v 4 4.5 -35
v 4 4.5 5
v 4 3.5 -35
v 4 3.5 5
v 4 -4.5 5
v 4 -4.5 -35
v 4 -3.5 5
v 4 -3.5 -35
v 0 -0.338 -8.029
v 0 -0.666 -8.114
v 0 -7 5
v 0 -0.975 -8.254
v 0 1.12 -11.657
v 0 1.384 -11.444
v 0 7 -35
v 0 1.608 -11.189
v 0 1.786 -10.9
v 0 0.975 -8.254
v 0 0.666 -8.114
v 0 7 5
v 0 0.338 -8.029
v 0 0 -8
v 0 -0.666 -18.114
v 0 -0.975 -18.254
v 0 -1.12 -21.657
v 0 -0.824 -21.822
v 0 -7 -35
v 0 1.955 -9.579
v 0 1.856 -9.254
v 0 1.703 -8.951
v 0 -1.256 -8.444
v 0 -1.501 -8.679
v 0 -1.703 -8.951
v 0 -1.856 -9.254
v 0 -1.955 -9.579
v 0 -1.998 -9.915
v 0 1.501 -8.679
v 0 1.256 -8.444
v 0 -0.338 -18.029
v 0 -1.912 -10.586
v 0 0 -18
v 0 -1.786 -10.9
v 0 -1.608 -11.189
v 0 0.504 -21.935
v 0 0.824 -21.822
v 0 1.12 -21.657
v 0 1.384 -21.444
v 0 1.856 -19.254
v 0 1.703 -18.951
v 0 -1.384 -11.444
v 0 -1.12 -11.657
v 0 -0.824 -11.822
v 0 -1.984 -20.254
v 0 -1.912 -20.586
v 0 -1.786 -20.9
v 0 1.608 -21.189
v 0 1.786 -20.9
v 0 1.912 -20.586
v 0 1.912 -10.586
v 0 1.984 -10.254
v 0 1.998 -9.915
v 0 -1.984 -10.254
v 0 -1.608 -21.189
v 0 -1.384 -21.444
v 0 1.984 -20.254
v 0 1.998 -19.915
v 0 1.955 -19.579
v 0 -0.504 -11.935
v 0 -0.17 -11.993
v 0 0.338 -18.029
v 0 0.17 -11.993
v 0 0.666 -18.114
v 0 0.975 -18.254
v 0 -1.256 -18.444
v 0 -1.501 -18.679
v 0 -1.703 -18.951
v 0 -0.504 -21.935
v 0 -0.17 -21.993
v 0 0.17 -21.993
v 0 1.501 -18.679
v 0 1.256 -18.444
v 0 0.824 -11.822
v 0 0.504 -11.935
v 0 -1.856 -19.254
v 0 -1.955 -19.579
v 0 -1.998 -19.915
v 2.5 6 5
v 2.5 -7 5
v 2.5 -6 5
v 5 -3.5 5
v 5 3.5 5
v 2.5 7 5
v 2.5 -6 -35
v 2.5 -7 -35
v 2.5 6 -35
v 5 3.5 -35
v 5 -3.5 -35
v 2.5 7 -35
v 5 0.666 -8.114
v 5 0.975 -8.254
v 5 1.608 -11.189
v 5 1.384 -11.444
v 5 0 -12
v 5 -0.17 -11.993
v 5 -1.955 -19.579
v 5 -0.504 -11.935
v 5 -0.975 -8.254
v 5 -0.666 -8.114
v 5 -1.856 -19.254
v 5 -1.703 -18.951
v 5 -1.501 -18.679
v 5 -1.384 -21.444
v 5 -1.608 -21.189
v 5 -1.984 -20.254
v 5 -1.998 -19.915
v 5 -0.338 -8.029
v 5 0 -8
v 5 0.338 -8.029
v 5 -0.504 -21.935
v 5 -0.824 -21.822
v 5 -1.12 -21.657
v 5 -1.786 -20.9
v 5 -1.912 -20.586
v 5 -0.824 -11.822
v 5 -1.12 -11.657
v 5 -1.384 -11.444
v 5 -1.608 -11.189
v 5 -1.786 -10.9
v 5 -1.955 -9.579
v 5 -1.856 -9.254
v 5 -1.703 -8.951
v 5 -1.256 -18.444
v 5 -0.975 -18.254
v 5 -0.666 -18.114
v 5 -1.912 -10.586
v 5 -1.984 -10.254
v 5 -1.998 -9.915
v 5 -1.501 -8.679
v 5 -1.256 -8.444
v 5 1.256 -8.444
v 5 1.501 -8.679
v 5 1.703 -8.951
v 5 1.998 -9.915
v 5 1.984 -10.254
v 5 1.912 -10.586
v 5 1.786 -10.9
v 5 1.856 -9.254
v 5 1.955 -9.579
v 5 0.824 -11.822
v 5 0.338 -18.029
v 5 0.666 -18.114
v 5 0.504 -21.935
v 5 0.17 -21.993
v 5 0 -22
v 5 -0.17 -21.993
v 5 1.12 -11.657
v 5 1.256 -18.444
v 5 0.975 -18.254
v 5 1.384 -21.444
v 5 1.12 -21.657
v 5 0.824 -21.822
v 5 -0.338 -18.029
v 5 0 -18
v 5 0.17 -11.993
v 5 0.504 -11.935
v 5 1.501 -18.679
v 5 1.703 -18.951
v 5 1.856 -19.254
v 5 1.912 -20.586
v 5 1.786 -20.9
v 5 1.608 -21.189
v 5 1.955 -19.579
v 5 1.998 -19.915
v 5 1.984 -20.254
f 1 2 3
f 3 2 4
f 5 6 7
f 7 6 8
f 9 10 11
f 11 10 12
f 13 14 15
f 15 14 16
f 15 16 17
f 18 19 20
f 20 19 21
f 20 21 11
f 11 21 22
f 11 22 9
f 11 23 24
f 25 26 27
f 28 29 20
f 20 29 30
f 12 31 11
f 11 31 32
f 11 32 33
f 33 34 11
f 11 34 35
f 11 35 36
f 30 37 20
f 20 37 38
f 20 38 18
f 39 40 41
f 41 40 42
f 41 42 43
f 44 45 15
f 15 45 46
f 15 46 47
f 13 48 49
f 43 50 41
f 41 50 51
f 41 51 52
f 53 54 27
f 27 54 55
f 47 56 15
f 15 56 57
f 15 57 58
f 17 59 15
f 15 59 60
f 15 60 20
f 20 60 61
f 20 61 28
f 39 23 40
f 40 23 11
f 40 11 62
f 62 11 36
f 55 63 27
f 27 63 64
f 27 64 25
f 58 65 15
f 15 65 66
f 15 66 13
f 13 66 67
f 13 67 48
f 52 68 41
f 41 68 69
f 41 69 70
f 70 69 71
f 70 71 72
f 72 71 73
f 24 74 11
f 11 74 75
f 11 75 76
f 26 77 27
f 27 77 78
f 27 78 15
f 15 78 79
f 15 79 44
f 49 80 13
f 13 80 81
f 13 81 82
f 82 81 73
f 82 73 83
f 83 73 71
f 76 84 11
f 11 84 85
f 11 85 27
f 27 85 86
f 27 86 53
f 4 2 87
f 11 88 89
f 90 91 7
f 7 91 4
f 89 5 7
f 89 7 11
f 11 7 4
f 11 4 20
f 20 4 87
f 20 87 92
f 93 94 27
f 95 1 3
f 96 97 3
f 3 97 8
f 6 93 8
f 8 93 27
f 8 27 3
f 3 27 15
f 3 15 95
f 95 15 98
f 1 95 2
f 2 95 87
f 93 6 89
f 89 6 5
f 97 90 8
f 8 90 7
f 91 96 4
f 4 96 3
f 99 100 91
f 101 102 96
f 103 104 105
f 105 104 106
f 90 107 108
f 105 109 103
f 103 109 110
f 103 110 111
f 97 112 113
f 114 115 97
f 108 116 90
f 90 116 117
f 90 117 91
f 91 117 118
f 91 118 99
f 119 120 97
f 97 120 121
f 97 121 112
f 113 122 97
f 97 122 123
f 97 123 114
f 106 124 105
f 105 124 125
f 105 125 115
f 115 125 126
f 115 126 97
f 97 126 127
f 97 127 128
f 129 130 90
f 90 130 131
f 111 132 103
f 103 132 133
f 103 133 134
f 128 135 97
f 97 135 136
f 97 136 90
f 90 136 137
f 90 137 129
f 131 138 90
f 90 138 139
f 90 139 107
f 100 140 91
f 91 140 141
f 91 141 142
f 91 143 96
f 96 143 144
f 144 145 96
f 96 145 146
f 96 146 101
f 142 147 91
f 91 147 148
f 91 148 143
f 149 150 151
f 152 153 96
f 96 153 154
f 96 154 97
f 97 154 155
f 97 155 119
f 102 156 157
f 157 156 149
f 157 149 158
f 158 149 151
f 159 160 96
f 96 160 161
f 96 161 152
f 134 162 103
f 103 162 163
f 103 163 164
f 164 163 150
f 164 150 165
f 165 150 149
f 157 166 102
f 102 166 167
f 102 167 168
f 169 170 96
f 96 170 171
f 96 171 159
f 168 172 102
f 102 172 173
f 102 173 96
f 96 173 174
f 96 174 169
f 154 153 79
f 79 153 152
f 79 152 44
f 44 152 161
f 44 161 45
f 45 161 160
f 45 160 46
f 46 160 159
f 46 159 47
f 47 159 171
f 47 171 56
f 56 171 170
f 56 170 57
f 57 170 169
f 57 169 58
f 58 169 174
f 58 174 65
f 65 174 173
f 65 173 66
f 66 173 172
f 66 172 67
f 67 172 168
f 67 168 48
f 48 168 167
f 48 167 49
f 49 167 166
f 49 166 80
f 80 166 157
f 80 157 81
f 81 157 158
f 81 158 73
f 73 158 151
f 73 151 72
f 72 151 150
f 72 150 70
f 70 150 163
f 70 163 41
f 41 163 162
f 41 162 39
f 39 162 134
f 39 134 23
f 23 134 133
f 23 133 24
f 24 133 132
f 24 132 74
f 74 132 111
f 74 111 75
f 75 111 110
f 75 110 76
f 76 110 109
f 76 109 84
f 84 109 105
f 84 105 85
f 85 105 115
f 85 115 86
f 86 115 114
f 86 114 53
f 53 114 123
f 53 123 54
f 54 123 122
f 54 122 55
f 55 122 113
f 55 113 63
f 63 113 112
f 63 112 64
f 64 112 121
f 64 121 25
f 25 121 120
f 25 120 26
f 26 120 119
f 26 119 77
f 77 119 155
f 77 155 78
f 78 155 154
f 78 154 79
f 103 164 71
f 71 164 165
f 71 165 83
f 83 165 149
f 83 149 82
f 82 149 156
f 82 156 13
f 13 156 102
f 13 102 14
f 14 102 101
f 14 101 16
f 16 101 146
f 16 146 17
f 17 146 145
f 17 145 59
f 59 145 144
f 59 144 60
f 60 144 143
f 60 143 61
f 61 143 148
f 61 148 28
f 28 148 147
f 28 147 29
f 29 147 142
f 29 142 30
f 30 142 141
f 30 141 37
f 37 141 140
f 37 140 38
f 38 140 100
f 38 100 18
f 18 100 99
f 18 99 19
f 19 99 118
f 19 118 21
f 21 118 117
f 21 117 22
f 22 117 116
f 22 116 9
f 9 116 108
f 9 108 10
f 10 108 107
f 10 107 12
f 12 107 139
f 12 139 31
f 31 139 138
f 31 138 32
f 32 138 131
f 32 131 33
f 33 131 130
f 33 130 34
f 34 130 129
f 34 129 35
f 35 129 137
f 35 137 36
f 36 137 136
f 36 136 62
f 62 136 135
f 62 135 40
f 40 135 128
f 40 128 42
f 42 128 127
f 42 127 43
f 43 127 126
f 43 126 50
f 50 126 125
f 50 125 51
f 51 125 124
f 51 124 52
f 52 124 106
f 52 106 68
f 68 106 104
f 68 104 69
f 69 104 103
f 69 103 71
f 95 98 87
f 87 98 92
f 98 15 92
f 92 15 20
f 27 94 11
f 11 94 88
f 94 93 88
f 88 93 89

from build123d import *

# Parameters (mm, degrees)
ESBO_O1_W                = 60
ESBO_O1_H                = 12
RESSALTO_EXTRUS_O1_DEPTH = 4
ESBO_O3_W                = 25
ESBO_O3_H                = 12
CORTE_EXTRUS_O2_DEPTH    = 10
ESBO_O4_W                = 5
ESBO_O4_H                = 12
RESSALTO_EXTRUS_O2_DEPTH = 4
CORTE_EXTRUS_O3_DEPTH    = 41.644802866
ESBO_O6_W                = 40
ESBO_O6_H                = 7
RESSALTO_EXTRUS_O3_DEPTH = 1
ESBO_O2_R                = 2
CORTE_EXTRUS_O1_DEPTH    = 15
ESBO_O7_W                = 2.5
ESBO_O7_H                = 1
RESSALTO_EXTRUS_O4_DEPTH = 40


with BuildPart() as part:
    # Esboço1 → Ressalto-extrusão1 (new body)
    with BuildSketch(Plane(origin=(0, 0, 0), x_dir=(0, 0, -1), z_dir=(1, 0, 0))):
        Rectangle(ESBO_O1_W, ESBO_O1_H)
    extrude(amount=RESSALTO_EXTRUS_O1_DEPTH)

    # Esboço3 → Corte-extrusão2 (cut)
    with BuildSketch(Plane.ZY):
        with Locations((17.5, 0)):
            Rectangle(ESBO_O3_W, ESBO_O3_H)
    extrude(amount=-CORTE_EXTRUS_O2_DEPTH, mode=Mode.SUBTRACT)

    # Esboço4 → Ressalto-extrusão2 (add)
    with BuildSketch(Plane.ZY):
        with Locations((-32.5, 0)):
            Rectangle(ESBO_O4_W, ESBO_O4_H)
    extrude(amount=-RESSALTO_EXTRUS_O2_DEPTH)

    # Esboço5 → Corte-extrusão3 (cut, through all)
    with BuildSketch(Plane.XY.offset(5)):
        Polygon((4, 6), (2.5, 6), (4, 4.5), align=None)
        Polygon((4, -4.5), (4, -6), (2.5, -6), align=None)
    extrude(amount=-CORTE_EXTRUS_O3_DEPTH, mode=Mode.SUBTRACT)

    # Esboço6 → Ressalto-extrusão3 (add)
    with BuildSketch(Plane(origin=(4, 0, 0), x_dir=(0, 0, -1), z_dir=(1, 0, 0))):
        with Locations((15, 0)):
            Rectangle(ESBO_O6_W, ESBO_O6_H)
    extrude(amount=RESSALTO_EXTRUS_O3_DEPTH)

    # Esboço2 → Corte-extrusão1 (cut)
    with BuildSketch(Plane.ZY):
        with Locations((-20, 0)):
            Circle(ESBO_O2_R)
        with Locations((-10, 0)):
            Circle(ESBO_O2_R)
    extrude(amount=-CORTE_EXTRUS_O1_DEPTH, mode=Mode.SUBTRACT)

    # Esboço7 → Ressalto-extrusão4 (add)
    with BuildSketch(Plane(origin=(0, 0, -35), x_dir=(-1, 0, 0), z_dir=(0, 0, -1))):
        with Locations((-1.25, 6.5)):
            Rectangle(ESBO_O7_W, ESBO_O7_H)
        with Locations((-1.25, -6.5)):
            Rectangle(ESBO_O7_W, ESBO_O7_H)
    extrude(amount=-RESSALTO_EXTRUS_O4_DEPTH)


solid = part.part
